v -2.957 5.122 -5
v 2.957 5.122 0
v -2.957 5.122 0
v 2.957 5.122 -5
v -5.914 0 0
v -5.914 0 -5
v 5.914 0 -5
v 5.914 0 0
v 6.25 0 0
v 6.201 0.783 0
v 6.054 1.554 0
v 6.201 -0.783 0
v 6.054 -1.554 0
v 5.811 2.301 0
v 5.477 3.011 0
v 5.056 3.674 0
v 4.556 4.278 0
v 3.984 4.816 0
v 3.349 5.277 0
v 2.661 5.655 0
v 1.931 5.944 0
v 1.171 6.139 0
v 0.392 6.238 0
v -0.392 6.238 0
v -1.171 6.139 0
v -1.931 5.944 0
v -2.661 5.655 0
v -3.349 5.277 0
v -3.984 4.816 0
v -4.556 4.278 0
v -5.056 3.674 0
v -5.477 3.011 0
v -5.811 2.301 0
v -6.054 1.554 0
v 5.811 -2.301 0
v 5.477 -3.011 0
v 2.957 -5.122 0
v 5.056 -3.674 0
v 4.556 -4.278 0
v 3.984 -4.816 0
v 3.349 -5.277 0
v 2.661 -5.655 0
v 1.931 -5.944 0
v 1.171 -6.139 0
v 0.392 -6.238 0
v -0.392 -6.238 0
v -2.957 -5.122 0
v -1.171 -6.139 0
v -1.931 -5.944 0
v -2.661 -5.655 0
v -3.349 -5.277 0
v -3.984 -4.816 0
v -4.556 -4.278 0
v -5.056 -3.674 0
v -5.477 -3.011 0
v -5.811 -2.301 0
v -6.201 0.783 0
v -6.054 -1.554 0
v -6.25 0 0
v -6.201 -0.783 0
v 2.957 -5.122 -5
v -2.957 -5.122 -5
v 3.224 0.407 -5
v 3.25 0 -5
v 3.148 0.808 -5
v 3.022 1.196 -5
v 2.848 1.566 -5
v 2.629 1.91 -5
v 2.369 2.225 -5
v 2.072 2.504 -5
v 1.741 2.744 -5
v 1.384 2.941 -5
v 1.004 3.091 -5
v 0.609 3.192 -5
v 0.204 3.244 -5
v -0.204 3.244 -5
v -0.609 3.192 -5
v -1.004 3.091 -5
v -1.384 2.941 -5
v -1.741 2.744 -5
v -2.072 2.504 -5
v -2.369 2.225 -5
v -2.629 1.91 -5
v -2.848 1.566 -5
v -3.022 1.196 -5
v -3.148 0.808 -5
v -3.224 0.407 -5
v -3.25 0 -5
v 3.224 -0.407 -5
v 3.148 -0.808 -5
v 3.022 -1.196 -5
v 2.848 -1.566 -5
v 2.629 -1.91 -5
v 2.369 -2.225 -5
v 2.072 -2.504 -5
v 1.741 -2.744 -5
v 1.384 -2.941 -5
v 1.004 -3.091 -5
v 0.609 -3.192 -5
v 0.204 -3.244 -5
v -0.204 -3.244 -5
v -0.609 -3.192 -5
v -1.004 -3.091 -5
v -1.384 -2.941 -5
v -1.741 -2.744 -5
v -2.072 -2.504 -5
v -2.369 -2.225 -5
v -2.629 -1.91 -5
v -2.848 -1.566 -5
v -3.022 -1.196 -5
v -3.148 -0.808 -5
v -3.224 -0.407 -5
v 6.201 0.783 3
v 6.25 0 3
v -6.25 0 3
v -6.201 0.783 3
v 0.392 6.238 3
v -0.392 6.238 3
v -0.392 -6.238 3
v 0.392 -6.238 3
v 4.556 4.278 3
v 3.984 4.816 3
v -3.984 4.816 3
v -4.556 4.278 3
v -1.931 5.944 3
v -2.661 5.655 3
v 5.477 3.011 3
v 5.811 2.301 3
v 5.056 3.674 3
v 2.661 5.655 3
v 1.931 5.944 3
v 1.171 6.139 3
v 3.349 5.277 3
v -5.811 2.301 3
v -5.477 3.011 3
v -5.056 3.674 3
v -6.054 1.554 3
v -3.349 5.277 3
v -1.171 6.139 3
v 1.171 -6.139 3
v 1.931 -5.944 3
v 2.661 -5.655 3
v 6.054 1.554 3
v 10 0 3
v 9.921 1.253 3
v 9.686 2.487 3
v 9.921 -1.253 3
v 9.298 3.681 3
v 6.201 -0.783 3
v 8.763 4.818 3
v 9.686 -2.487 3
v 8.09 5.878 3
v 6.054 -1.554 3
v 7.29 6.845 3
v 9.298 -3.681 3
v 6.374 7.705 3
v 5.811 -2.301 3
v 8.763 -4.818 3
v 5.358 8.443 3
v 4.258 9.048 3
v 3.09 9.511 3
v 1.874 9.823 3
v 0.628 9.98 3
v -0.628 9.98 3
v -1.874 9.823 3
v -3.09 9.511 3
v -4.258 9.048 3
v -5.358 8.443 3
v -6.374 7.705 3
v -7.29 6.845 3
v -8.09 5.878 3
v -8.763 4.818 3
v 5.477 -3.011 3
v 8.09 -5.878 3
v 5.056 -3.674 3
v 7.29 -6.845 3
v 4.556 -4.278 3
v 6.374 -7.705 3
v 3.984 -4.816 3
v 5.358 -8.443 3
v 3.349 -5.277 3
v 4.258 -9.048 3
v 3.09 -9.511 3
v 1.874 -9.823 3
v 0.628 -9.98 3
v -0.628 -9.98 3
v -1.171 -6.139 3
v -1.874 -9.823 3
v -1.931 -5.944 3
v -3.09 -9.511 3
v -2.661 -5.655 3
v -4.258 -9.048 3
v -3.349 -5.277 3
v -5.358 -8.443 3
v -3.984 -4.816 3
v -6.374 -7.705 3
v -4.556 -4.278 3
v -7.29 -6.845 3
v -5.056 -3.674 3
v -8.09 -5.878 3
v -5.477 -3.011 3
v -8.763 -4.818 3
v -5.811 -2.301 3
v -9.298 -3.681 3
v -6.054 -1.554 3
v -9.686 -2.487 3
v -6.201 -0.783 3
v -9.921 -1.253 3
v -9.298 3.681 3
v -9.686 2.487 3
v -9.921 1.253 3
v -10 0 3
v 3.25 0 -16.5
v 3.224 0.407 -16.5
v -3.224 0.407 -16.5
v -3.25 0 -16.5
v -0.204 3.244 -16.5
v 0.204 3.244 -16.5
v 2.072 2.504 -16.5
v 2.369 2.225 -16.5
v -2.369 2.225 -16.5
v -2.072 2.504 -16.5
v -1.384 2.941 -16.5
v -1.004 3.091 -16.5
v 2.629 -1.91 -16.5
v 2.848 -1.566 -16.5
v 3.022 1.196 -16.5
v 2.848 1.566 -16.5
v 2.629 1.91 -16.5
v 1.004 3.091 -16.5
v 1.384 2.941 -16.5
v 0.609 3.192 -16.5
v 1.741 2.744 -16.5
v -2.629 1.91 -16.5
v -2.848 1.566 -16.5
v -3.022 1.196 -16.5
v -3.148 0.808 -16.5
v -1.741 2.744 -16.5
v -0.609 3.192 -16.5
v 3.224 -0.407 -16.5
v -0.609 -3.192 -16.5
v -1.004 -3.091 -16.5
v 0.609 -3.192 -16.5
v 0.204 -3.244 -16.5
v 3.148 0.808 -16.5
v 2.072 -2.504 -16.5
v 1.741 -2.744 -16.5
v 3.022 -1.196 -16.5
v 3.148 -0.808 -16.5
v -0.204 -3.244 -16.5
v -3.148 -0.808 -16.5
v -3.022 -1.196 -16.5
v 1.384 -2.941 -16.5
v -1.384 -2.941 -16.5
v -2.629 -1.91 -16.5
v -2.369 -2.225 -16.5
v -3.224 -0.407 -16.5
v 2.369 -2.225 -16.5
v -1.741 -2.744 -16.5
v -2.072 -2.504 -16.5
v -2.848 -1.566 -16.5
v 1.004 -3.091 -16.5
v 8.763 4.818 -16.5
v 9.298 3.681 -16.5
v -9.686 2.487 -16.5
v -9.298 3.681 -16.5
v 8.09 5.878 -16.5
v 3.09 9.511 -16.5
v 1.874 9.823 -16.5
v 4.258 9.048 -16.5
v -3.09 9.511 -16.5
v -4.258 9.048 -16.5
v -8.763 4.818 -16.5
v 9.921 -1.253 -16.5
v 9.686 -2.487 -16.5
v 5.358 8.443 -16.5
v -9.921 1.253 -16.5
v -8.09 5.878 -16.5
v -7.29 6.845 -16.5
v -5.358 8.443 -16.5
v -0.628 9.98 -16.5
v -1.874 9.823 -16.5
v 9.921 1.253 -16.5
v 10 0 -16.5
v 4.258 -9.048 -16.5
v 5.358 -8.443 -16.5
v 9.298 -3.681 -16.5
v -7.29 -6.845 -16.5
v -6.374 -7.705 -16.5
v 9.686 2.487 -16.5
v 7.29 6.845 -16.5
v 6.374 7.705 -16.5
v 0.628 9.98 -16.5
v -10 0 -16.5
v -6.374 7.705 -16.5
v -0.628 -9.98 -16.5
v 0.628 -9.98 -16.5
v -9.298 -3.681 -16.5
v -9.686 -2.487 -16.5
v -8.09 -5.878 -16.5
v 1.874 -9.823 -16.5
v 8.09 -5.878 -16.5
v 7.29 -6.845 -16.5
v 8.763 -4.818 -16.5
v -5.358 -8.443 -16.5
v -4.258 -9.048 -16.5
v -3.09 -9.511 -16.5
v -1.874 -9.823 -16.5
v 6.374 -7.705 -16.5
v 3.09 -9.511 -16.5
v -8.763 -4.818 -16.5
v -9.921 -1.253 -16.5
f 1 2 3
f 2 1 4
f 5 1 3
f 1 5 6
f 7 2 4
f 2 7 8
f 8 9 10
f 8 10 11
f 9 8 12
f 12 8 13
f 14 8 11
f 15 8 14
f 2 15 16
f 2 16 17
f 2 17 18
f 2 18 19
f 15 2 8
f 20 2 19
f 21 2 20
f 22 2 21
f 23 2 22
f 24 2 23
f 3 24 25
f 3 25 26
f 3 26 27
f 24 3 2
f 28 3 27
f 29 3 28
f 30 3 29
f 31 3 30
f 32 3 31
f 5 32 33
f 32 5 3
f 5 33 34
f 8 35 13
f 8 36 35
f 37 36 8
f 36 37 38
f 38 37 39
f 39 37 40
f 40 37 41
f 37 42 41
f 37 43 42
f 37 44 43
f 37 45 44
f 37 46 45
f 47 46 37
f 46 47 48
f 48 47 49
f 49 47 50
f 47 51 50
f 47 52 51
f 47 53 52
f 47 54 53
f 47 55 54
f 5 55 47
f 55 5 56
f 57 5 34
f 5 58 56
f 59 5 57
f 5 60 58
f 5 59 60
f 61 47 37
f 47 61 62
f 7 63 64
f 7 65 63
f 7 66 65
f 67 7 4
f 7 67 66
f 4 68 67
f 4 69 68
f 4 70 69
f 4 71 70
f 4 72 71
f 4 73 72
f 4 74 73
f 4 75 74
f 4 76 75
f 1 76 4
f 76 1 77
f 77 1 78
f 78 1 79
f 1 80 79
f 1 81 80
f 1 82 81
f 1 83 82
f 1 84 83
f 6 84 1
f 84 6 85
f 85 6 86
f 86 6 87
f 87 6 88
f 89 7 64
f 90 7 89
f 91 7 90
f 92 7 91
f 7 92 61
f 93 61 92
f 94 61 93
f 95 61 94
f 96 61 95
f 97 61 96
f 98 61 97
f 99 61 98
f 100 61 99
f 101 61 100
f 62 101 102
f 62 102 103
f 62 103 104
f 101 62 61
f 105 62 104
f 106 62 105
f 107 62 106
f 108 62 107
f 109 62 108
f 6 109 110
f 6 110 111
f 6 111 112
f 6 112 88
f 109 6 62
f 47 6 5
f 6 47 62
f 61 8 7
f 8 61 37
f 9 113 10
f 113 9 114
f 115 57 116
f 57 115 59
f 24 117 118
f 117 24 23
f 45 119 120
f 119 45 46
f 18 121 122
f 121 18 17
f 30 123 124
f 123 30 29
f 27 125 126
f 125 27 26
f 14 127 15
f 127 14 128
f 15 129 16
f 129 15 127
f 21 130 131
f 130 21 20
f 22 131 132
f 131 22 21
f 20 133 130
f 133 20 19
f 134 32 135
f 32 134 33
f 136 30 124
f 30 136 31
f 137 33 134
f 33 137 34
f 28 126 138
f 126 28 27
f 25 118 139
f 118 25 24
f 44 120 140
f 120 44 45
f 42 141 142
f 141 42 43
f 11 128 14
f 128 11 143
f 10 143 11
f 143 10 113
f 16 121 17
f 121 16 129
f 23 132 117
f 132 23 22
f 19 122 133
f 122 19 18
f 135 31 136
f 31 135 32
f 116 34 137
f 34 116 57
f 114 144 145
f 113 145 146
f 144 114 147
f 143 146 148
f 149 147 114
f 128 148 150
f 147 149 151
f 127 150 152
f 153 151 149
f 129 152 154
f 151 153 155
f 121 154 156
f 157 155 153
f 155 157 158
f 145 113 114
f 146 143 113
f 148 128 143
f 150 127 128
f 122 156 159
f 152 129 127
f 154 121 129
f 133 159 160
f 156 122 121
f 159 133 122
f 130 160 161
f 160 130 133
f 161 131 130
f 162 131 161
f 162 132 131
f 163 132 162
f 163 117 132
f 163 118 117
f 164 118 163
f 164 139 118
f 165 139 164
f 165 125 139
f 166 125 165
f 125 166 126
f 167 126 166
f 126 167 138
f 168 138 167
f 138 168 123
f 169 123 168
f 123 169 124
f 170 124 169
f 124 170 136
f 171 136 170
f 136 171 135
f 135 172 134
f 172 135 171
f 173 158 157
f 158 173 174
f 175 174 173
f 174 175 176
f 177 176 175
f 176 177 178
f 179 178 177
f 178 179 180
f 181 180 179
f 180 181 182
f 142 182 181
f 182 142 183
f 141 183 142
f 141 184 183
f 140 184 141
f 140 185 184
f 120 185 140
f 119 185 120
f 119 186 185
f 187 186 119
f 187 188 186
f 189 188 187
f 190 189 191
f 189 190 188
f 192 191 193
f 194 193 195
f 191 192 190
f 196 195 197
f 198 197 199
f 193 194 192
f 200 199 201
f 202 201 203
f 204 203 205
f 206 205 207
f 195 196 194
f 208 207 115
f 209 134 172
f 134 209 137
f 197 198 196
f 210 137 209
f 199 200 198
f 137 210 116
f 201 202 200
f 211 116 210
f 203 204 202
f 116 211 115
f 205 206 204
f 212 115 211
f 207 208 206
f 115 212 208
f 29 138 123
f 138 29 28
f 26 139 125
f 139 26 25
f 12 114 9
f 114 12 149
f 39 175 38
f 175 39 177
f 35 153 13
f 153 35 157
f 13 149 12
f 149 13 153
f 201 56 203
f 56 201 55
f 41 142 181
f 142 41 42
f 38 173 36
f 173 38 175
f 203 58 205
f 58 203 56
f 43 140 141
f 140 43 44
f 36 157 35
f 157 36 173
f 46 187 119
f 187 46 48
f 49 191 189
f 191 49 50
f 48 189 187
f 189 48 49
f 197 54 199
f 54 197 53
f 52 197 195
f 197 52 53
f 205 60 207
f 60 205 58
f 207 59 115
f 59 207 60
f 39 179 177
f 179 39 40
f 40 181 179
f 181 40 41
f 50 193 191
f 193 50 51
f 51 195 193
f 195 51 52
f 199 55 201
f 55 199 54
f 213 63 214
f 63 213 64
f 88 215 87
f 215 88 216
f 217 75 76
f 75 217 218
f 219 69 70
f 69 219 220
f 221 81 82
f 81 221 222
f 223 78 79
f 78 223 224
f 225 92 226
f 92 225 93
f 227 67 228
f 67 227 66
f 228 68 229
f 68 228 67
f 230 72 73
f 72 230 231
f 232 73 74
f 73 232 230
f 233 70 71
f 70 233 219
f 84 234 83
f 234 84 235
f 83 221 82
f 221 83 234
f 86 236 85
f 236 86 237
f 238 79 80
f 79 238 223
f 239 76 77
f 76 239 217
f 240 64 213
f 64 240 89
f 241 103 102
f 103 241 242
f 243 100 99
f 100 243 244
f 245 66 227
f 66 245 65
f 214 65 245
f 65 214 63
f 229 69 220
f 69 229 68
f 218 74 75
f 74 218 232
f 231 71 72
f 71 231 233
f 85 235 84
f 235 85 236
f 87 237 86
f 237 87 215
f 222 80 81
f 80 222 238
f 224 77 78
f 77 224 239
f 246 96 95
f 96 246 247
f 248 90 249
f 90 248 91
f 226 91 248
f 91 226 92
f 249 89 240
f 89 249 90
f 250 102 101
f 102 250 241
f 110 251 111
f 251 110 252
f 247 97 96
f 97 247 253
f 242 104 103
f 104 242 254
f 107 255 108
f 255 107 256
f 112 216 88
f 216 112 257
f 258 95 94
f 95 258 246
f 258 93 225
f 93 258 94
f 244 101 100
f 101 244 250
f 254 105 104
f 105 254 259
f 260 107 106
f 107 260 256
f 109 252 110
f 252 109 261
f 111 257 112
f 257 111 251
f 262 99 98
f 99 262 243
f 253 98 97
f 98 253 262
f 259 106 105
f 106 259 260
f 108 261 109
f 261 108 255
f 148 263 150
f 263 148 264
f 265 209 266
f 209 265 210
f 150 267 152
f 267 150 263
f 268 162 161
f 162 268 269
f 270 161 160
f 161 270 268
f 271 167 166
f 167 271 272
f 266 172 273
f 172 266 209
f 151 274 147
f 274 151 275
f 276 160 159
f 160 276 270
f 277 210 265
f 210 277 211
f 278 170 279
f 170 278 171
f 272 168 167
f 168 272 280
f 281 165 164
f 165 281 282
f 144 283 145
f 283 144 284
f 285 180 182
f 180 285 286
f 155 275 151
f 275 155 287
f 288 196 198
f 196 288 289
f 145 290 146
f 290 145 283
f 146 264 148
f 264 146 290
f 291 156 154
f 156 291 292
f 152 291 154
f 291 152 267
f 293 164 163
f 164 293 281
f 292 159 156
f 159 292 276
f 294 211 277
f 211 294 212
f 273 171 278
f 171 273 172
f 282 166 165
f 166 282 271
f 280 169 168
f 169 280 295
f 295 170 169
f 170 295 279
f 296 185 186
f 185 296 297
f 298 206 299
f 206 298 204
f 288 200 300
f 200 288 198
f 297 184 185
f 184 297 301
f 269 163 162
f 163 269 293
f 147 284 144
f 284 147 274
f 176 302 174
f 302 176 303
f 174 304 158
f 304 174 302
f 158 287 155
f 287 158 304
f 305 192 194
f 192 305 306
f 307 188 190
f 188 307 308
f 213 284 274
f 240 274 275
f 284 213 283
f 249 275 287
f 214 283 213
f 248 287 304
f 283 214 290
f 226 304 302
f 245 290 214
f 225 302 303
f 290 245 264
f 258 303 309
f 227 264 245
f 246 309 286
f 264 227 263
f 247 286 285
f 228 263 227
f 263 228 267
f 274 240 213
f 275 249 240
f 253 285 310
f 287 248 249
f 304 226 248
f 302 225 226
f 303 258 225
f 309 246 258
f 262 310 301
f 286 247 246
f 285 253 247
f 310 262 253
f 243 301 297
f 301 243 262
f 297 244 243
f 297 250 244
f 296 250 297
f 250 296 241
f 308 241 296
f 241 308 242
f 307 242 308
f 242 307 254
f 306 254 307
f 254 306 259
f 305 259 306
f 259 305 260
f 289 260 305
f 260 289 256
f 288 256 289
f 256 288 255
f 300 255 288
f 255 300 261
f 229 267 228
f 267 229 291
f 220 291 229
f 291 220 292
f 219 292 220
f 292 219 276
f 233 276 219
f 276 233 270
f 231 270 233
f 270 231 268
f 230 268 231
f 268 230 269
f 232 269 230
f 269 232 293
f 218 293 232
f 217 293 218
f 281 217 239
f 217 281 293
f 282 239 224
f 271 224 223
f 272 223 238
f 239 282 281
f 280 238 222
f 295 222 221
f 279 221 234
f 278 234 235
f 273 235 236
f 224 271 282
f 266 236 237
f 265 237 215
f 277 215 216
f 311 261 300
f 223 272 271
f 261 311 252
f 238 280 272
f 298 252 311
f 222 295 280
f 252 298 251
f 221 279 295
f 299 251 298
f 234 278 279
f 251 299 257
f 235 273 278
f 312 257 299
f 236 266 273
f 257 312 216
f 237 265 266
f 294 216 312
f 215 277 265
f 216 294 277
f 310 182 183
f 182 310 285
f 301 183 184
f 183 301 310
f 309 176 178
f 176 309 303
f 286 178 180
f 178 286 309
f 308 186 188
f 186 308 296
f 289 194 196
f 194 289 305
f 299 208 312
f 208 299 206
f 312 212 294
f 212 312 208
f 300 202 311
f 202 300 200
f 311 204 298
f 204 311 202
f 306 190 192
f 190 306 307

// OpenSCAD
$fn = 50;


difference() {
	union() {
		translate(v = [0, 0, -16.5000000000]) {
			cylinder(h = 19.5000000000, r = 10.0000000000);
		}
	}
	union() {
		translate(v = [0, 0, 0]) {
			rotate(a = [0, 0, 0]) {
				difference() {
					union() {
						translate(v = [0, 0, -5]) {
							linear_extrude(height = 5) {
								polygon(points = [[5.9142500000, 0.0000000000], [2.9571250000, 5.1218907443], [-2.9571250000, 5.1218907443], [-5.9142500000, 0.0000000000], [-2.9571250000, -5.1218907443], [2.9571250000, -5.1218907443]]);
							}
						}
					}
					union();
				}
			}
		}
		#cylinder(h = 3, r = 6.2500000000);
		#translate(v = [0, 0, -100.0000000000]) {
			cylinder(h = 200, r = 3.2500000000);
		}
	}
}
